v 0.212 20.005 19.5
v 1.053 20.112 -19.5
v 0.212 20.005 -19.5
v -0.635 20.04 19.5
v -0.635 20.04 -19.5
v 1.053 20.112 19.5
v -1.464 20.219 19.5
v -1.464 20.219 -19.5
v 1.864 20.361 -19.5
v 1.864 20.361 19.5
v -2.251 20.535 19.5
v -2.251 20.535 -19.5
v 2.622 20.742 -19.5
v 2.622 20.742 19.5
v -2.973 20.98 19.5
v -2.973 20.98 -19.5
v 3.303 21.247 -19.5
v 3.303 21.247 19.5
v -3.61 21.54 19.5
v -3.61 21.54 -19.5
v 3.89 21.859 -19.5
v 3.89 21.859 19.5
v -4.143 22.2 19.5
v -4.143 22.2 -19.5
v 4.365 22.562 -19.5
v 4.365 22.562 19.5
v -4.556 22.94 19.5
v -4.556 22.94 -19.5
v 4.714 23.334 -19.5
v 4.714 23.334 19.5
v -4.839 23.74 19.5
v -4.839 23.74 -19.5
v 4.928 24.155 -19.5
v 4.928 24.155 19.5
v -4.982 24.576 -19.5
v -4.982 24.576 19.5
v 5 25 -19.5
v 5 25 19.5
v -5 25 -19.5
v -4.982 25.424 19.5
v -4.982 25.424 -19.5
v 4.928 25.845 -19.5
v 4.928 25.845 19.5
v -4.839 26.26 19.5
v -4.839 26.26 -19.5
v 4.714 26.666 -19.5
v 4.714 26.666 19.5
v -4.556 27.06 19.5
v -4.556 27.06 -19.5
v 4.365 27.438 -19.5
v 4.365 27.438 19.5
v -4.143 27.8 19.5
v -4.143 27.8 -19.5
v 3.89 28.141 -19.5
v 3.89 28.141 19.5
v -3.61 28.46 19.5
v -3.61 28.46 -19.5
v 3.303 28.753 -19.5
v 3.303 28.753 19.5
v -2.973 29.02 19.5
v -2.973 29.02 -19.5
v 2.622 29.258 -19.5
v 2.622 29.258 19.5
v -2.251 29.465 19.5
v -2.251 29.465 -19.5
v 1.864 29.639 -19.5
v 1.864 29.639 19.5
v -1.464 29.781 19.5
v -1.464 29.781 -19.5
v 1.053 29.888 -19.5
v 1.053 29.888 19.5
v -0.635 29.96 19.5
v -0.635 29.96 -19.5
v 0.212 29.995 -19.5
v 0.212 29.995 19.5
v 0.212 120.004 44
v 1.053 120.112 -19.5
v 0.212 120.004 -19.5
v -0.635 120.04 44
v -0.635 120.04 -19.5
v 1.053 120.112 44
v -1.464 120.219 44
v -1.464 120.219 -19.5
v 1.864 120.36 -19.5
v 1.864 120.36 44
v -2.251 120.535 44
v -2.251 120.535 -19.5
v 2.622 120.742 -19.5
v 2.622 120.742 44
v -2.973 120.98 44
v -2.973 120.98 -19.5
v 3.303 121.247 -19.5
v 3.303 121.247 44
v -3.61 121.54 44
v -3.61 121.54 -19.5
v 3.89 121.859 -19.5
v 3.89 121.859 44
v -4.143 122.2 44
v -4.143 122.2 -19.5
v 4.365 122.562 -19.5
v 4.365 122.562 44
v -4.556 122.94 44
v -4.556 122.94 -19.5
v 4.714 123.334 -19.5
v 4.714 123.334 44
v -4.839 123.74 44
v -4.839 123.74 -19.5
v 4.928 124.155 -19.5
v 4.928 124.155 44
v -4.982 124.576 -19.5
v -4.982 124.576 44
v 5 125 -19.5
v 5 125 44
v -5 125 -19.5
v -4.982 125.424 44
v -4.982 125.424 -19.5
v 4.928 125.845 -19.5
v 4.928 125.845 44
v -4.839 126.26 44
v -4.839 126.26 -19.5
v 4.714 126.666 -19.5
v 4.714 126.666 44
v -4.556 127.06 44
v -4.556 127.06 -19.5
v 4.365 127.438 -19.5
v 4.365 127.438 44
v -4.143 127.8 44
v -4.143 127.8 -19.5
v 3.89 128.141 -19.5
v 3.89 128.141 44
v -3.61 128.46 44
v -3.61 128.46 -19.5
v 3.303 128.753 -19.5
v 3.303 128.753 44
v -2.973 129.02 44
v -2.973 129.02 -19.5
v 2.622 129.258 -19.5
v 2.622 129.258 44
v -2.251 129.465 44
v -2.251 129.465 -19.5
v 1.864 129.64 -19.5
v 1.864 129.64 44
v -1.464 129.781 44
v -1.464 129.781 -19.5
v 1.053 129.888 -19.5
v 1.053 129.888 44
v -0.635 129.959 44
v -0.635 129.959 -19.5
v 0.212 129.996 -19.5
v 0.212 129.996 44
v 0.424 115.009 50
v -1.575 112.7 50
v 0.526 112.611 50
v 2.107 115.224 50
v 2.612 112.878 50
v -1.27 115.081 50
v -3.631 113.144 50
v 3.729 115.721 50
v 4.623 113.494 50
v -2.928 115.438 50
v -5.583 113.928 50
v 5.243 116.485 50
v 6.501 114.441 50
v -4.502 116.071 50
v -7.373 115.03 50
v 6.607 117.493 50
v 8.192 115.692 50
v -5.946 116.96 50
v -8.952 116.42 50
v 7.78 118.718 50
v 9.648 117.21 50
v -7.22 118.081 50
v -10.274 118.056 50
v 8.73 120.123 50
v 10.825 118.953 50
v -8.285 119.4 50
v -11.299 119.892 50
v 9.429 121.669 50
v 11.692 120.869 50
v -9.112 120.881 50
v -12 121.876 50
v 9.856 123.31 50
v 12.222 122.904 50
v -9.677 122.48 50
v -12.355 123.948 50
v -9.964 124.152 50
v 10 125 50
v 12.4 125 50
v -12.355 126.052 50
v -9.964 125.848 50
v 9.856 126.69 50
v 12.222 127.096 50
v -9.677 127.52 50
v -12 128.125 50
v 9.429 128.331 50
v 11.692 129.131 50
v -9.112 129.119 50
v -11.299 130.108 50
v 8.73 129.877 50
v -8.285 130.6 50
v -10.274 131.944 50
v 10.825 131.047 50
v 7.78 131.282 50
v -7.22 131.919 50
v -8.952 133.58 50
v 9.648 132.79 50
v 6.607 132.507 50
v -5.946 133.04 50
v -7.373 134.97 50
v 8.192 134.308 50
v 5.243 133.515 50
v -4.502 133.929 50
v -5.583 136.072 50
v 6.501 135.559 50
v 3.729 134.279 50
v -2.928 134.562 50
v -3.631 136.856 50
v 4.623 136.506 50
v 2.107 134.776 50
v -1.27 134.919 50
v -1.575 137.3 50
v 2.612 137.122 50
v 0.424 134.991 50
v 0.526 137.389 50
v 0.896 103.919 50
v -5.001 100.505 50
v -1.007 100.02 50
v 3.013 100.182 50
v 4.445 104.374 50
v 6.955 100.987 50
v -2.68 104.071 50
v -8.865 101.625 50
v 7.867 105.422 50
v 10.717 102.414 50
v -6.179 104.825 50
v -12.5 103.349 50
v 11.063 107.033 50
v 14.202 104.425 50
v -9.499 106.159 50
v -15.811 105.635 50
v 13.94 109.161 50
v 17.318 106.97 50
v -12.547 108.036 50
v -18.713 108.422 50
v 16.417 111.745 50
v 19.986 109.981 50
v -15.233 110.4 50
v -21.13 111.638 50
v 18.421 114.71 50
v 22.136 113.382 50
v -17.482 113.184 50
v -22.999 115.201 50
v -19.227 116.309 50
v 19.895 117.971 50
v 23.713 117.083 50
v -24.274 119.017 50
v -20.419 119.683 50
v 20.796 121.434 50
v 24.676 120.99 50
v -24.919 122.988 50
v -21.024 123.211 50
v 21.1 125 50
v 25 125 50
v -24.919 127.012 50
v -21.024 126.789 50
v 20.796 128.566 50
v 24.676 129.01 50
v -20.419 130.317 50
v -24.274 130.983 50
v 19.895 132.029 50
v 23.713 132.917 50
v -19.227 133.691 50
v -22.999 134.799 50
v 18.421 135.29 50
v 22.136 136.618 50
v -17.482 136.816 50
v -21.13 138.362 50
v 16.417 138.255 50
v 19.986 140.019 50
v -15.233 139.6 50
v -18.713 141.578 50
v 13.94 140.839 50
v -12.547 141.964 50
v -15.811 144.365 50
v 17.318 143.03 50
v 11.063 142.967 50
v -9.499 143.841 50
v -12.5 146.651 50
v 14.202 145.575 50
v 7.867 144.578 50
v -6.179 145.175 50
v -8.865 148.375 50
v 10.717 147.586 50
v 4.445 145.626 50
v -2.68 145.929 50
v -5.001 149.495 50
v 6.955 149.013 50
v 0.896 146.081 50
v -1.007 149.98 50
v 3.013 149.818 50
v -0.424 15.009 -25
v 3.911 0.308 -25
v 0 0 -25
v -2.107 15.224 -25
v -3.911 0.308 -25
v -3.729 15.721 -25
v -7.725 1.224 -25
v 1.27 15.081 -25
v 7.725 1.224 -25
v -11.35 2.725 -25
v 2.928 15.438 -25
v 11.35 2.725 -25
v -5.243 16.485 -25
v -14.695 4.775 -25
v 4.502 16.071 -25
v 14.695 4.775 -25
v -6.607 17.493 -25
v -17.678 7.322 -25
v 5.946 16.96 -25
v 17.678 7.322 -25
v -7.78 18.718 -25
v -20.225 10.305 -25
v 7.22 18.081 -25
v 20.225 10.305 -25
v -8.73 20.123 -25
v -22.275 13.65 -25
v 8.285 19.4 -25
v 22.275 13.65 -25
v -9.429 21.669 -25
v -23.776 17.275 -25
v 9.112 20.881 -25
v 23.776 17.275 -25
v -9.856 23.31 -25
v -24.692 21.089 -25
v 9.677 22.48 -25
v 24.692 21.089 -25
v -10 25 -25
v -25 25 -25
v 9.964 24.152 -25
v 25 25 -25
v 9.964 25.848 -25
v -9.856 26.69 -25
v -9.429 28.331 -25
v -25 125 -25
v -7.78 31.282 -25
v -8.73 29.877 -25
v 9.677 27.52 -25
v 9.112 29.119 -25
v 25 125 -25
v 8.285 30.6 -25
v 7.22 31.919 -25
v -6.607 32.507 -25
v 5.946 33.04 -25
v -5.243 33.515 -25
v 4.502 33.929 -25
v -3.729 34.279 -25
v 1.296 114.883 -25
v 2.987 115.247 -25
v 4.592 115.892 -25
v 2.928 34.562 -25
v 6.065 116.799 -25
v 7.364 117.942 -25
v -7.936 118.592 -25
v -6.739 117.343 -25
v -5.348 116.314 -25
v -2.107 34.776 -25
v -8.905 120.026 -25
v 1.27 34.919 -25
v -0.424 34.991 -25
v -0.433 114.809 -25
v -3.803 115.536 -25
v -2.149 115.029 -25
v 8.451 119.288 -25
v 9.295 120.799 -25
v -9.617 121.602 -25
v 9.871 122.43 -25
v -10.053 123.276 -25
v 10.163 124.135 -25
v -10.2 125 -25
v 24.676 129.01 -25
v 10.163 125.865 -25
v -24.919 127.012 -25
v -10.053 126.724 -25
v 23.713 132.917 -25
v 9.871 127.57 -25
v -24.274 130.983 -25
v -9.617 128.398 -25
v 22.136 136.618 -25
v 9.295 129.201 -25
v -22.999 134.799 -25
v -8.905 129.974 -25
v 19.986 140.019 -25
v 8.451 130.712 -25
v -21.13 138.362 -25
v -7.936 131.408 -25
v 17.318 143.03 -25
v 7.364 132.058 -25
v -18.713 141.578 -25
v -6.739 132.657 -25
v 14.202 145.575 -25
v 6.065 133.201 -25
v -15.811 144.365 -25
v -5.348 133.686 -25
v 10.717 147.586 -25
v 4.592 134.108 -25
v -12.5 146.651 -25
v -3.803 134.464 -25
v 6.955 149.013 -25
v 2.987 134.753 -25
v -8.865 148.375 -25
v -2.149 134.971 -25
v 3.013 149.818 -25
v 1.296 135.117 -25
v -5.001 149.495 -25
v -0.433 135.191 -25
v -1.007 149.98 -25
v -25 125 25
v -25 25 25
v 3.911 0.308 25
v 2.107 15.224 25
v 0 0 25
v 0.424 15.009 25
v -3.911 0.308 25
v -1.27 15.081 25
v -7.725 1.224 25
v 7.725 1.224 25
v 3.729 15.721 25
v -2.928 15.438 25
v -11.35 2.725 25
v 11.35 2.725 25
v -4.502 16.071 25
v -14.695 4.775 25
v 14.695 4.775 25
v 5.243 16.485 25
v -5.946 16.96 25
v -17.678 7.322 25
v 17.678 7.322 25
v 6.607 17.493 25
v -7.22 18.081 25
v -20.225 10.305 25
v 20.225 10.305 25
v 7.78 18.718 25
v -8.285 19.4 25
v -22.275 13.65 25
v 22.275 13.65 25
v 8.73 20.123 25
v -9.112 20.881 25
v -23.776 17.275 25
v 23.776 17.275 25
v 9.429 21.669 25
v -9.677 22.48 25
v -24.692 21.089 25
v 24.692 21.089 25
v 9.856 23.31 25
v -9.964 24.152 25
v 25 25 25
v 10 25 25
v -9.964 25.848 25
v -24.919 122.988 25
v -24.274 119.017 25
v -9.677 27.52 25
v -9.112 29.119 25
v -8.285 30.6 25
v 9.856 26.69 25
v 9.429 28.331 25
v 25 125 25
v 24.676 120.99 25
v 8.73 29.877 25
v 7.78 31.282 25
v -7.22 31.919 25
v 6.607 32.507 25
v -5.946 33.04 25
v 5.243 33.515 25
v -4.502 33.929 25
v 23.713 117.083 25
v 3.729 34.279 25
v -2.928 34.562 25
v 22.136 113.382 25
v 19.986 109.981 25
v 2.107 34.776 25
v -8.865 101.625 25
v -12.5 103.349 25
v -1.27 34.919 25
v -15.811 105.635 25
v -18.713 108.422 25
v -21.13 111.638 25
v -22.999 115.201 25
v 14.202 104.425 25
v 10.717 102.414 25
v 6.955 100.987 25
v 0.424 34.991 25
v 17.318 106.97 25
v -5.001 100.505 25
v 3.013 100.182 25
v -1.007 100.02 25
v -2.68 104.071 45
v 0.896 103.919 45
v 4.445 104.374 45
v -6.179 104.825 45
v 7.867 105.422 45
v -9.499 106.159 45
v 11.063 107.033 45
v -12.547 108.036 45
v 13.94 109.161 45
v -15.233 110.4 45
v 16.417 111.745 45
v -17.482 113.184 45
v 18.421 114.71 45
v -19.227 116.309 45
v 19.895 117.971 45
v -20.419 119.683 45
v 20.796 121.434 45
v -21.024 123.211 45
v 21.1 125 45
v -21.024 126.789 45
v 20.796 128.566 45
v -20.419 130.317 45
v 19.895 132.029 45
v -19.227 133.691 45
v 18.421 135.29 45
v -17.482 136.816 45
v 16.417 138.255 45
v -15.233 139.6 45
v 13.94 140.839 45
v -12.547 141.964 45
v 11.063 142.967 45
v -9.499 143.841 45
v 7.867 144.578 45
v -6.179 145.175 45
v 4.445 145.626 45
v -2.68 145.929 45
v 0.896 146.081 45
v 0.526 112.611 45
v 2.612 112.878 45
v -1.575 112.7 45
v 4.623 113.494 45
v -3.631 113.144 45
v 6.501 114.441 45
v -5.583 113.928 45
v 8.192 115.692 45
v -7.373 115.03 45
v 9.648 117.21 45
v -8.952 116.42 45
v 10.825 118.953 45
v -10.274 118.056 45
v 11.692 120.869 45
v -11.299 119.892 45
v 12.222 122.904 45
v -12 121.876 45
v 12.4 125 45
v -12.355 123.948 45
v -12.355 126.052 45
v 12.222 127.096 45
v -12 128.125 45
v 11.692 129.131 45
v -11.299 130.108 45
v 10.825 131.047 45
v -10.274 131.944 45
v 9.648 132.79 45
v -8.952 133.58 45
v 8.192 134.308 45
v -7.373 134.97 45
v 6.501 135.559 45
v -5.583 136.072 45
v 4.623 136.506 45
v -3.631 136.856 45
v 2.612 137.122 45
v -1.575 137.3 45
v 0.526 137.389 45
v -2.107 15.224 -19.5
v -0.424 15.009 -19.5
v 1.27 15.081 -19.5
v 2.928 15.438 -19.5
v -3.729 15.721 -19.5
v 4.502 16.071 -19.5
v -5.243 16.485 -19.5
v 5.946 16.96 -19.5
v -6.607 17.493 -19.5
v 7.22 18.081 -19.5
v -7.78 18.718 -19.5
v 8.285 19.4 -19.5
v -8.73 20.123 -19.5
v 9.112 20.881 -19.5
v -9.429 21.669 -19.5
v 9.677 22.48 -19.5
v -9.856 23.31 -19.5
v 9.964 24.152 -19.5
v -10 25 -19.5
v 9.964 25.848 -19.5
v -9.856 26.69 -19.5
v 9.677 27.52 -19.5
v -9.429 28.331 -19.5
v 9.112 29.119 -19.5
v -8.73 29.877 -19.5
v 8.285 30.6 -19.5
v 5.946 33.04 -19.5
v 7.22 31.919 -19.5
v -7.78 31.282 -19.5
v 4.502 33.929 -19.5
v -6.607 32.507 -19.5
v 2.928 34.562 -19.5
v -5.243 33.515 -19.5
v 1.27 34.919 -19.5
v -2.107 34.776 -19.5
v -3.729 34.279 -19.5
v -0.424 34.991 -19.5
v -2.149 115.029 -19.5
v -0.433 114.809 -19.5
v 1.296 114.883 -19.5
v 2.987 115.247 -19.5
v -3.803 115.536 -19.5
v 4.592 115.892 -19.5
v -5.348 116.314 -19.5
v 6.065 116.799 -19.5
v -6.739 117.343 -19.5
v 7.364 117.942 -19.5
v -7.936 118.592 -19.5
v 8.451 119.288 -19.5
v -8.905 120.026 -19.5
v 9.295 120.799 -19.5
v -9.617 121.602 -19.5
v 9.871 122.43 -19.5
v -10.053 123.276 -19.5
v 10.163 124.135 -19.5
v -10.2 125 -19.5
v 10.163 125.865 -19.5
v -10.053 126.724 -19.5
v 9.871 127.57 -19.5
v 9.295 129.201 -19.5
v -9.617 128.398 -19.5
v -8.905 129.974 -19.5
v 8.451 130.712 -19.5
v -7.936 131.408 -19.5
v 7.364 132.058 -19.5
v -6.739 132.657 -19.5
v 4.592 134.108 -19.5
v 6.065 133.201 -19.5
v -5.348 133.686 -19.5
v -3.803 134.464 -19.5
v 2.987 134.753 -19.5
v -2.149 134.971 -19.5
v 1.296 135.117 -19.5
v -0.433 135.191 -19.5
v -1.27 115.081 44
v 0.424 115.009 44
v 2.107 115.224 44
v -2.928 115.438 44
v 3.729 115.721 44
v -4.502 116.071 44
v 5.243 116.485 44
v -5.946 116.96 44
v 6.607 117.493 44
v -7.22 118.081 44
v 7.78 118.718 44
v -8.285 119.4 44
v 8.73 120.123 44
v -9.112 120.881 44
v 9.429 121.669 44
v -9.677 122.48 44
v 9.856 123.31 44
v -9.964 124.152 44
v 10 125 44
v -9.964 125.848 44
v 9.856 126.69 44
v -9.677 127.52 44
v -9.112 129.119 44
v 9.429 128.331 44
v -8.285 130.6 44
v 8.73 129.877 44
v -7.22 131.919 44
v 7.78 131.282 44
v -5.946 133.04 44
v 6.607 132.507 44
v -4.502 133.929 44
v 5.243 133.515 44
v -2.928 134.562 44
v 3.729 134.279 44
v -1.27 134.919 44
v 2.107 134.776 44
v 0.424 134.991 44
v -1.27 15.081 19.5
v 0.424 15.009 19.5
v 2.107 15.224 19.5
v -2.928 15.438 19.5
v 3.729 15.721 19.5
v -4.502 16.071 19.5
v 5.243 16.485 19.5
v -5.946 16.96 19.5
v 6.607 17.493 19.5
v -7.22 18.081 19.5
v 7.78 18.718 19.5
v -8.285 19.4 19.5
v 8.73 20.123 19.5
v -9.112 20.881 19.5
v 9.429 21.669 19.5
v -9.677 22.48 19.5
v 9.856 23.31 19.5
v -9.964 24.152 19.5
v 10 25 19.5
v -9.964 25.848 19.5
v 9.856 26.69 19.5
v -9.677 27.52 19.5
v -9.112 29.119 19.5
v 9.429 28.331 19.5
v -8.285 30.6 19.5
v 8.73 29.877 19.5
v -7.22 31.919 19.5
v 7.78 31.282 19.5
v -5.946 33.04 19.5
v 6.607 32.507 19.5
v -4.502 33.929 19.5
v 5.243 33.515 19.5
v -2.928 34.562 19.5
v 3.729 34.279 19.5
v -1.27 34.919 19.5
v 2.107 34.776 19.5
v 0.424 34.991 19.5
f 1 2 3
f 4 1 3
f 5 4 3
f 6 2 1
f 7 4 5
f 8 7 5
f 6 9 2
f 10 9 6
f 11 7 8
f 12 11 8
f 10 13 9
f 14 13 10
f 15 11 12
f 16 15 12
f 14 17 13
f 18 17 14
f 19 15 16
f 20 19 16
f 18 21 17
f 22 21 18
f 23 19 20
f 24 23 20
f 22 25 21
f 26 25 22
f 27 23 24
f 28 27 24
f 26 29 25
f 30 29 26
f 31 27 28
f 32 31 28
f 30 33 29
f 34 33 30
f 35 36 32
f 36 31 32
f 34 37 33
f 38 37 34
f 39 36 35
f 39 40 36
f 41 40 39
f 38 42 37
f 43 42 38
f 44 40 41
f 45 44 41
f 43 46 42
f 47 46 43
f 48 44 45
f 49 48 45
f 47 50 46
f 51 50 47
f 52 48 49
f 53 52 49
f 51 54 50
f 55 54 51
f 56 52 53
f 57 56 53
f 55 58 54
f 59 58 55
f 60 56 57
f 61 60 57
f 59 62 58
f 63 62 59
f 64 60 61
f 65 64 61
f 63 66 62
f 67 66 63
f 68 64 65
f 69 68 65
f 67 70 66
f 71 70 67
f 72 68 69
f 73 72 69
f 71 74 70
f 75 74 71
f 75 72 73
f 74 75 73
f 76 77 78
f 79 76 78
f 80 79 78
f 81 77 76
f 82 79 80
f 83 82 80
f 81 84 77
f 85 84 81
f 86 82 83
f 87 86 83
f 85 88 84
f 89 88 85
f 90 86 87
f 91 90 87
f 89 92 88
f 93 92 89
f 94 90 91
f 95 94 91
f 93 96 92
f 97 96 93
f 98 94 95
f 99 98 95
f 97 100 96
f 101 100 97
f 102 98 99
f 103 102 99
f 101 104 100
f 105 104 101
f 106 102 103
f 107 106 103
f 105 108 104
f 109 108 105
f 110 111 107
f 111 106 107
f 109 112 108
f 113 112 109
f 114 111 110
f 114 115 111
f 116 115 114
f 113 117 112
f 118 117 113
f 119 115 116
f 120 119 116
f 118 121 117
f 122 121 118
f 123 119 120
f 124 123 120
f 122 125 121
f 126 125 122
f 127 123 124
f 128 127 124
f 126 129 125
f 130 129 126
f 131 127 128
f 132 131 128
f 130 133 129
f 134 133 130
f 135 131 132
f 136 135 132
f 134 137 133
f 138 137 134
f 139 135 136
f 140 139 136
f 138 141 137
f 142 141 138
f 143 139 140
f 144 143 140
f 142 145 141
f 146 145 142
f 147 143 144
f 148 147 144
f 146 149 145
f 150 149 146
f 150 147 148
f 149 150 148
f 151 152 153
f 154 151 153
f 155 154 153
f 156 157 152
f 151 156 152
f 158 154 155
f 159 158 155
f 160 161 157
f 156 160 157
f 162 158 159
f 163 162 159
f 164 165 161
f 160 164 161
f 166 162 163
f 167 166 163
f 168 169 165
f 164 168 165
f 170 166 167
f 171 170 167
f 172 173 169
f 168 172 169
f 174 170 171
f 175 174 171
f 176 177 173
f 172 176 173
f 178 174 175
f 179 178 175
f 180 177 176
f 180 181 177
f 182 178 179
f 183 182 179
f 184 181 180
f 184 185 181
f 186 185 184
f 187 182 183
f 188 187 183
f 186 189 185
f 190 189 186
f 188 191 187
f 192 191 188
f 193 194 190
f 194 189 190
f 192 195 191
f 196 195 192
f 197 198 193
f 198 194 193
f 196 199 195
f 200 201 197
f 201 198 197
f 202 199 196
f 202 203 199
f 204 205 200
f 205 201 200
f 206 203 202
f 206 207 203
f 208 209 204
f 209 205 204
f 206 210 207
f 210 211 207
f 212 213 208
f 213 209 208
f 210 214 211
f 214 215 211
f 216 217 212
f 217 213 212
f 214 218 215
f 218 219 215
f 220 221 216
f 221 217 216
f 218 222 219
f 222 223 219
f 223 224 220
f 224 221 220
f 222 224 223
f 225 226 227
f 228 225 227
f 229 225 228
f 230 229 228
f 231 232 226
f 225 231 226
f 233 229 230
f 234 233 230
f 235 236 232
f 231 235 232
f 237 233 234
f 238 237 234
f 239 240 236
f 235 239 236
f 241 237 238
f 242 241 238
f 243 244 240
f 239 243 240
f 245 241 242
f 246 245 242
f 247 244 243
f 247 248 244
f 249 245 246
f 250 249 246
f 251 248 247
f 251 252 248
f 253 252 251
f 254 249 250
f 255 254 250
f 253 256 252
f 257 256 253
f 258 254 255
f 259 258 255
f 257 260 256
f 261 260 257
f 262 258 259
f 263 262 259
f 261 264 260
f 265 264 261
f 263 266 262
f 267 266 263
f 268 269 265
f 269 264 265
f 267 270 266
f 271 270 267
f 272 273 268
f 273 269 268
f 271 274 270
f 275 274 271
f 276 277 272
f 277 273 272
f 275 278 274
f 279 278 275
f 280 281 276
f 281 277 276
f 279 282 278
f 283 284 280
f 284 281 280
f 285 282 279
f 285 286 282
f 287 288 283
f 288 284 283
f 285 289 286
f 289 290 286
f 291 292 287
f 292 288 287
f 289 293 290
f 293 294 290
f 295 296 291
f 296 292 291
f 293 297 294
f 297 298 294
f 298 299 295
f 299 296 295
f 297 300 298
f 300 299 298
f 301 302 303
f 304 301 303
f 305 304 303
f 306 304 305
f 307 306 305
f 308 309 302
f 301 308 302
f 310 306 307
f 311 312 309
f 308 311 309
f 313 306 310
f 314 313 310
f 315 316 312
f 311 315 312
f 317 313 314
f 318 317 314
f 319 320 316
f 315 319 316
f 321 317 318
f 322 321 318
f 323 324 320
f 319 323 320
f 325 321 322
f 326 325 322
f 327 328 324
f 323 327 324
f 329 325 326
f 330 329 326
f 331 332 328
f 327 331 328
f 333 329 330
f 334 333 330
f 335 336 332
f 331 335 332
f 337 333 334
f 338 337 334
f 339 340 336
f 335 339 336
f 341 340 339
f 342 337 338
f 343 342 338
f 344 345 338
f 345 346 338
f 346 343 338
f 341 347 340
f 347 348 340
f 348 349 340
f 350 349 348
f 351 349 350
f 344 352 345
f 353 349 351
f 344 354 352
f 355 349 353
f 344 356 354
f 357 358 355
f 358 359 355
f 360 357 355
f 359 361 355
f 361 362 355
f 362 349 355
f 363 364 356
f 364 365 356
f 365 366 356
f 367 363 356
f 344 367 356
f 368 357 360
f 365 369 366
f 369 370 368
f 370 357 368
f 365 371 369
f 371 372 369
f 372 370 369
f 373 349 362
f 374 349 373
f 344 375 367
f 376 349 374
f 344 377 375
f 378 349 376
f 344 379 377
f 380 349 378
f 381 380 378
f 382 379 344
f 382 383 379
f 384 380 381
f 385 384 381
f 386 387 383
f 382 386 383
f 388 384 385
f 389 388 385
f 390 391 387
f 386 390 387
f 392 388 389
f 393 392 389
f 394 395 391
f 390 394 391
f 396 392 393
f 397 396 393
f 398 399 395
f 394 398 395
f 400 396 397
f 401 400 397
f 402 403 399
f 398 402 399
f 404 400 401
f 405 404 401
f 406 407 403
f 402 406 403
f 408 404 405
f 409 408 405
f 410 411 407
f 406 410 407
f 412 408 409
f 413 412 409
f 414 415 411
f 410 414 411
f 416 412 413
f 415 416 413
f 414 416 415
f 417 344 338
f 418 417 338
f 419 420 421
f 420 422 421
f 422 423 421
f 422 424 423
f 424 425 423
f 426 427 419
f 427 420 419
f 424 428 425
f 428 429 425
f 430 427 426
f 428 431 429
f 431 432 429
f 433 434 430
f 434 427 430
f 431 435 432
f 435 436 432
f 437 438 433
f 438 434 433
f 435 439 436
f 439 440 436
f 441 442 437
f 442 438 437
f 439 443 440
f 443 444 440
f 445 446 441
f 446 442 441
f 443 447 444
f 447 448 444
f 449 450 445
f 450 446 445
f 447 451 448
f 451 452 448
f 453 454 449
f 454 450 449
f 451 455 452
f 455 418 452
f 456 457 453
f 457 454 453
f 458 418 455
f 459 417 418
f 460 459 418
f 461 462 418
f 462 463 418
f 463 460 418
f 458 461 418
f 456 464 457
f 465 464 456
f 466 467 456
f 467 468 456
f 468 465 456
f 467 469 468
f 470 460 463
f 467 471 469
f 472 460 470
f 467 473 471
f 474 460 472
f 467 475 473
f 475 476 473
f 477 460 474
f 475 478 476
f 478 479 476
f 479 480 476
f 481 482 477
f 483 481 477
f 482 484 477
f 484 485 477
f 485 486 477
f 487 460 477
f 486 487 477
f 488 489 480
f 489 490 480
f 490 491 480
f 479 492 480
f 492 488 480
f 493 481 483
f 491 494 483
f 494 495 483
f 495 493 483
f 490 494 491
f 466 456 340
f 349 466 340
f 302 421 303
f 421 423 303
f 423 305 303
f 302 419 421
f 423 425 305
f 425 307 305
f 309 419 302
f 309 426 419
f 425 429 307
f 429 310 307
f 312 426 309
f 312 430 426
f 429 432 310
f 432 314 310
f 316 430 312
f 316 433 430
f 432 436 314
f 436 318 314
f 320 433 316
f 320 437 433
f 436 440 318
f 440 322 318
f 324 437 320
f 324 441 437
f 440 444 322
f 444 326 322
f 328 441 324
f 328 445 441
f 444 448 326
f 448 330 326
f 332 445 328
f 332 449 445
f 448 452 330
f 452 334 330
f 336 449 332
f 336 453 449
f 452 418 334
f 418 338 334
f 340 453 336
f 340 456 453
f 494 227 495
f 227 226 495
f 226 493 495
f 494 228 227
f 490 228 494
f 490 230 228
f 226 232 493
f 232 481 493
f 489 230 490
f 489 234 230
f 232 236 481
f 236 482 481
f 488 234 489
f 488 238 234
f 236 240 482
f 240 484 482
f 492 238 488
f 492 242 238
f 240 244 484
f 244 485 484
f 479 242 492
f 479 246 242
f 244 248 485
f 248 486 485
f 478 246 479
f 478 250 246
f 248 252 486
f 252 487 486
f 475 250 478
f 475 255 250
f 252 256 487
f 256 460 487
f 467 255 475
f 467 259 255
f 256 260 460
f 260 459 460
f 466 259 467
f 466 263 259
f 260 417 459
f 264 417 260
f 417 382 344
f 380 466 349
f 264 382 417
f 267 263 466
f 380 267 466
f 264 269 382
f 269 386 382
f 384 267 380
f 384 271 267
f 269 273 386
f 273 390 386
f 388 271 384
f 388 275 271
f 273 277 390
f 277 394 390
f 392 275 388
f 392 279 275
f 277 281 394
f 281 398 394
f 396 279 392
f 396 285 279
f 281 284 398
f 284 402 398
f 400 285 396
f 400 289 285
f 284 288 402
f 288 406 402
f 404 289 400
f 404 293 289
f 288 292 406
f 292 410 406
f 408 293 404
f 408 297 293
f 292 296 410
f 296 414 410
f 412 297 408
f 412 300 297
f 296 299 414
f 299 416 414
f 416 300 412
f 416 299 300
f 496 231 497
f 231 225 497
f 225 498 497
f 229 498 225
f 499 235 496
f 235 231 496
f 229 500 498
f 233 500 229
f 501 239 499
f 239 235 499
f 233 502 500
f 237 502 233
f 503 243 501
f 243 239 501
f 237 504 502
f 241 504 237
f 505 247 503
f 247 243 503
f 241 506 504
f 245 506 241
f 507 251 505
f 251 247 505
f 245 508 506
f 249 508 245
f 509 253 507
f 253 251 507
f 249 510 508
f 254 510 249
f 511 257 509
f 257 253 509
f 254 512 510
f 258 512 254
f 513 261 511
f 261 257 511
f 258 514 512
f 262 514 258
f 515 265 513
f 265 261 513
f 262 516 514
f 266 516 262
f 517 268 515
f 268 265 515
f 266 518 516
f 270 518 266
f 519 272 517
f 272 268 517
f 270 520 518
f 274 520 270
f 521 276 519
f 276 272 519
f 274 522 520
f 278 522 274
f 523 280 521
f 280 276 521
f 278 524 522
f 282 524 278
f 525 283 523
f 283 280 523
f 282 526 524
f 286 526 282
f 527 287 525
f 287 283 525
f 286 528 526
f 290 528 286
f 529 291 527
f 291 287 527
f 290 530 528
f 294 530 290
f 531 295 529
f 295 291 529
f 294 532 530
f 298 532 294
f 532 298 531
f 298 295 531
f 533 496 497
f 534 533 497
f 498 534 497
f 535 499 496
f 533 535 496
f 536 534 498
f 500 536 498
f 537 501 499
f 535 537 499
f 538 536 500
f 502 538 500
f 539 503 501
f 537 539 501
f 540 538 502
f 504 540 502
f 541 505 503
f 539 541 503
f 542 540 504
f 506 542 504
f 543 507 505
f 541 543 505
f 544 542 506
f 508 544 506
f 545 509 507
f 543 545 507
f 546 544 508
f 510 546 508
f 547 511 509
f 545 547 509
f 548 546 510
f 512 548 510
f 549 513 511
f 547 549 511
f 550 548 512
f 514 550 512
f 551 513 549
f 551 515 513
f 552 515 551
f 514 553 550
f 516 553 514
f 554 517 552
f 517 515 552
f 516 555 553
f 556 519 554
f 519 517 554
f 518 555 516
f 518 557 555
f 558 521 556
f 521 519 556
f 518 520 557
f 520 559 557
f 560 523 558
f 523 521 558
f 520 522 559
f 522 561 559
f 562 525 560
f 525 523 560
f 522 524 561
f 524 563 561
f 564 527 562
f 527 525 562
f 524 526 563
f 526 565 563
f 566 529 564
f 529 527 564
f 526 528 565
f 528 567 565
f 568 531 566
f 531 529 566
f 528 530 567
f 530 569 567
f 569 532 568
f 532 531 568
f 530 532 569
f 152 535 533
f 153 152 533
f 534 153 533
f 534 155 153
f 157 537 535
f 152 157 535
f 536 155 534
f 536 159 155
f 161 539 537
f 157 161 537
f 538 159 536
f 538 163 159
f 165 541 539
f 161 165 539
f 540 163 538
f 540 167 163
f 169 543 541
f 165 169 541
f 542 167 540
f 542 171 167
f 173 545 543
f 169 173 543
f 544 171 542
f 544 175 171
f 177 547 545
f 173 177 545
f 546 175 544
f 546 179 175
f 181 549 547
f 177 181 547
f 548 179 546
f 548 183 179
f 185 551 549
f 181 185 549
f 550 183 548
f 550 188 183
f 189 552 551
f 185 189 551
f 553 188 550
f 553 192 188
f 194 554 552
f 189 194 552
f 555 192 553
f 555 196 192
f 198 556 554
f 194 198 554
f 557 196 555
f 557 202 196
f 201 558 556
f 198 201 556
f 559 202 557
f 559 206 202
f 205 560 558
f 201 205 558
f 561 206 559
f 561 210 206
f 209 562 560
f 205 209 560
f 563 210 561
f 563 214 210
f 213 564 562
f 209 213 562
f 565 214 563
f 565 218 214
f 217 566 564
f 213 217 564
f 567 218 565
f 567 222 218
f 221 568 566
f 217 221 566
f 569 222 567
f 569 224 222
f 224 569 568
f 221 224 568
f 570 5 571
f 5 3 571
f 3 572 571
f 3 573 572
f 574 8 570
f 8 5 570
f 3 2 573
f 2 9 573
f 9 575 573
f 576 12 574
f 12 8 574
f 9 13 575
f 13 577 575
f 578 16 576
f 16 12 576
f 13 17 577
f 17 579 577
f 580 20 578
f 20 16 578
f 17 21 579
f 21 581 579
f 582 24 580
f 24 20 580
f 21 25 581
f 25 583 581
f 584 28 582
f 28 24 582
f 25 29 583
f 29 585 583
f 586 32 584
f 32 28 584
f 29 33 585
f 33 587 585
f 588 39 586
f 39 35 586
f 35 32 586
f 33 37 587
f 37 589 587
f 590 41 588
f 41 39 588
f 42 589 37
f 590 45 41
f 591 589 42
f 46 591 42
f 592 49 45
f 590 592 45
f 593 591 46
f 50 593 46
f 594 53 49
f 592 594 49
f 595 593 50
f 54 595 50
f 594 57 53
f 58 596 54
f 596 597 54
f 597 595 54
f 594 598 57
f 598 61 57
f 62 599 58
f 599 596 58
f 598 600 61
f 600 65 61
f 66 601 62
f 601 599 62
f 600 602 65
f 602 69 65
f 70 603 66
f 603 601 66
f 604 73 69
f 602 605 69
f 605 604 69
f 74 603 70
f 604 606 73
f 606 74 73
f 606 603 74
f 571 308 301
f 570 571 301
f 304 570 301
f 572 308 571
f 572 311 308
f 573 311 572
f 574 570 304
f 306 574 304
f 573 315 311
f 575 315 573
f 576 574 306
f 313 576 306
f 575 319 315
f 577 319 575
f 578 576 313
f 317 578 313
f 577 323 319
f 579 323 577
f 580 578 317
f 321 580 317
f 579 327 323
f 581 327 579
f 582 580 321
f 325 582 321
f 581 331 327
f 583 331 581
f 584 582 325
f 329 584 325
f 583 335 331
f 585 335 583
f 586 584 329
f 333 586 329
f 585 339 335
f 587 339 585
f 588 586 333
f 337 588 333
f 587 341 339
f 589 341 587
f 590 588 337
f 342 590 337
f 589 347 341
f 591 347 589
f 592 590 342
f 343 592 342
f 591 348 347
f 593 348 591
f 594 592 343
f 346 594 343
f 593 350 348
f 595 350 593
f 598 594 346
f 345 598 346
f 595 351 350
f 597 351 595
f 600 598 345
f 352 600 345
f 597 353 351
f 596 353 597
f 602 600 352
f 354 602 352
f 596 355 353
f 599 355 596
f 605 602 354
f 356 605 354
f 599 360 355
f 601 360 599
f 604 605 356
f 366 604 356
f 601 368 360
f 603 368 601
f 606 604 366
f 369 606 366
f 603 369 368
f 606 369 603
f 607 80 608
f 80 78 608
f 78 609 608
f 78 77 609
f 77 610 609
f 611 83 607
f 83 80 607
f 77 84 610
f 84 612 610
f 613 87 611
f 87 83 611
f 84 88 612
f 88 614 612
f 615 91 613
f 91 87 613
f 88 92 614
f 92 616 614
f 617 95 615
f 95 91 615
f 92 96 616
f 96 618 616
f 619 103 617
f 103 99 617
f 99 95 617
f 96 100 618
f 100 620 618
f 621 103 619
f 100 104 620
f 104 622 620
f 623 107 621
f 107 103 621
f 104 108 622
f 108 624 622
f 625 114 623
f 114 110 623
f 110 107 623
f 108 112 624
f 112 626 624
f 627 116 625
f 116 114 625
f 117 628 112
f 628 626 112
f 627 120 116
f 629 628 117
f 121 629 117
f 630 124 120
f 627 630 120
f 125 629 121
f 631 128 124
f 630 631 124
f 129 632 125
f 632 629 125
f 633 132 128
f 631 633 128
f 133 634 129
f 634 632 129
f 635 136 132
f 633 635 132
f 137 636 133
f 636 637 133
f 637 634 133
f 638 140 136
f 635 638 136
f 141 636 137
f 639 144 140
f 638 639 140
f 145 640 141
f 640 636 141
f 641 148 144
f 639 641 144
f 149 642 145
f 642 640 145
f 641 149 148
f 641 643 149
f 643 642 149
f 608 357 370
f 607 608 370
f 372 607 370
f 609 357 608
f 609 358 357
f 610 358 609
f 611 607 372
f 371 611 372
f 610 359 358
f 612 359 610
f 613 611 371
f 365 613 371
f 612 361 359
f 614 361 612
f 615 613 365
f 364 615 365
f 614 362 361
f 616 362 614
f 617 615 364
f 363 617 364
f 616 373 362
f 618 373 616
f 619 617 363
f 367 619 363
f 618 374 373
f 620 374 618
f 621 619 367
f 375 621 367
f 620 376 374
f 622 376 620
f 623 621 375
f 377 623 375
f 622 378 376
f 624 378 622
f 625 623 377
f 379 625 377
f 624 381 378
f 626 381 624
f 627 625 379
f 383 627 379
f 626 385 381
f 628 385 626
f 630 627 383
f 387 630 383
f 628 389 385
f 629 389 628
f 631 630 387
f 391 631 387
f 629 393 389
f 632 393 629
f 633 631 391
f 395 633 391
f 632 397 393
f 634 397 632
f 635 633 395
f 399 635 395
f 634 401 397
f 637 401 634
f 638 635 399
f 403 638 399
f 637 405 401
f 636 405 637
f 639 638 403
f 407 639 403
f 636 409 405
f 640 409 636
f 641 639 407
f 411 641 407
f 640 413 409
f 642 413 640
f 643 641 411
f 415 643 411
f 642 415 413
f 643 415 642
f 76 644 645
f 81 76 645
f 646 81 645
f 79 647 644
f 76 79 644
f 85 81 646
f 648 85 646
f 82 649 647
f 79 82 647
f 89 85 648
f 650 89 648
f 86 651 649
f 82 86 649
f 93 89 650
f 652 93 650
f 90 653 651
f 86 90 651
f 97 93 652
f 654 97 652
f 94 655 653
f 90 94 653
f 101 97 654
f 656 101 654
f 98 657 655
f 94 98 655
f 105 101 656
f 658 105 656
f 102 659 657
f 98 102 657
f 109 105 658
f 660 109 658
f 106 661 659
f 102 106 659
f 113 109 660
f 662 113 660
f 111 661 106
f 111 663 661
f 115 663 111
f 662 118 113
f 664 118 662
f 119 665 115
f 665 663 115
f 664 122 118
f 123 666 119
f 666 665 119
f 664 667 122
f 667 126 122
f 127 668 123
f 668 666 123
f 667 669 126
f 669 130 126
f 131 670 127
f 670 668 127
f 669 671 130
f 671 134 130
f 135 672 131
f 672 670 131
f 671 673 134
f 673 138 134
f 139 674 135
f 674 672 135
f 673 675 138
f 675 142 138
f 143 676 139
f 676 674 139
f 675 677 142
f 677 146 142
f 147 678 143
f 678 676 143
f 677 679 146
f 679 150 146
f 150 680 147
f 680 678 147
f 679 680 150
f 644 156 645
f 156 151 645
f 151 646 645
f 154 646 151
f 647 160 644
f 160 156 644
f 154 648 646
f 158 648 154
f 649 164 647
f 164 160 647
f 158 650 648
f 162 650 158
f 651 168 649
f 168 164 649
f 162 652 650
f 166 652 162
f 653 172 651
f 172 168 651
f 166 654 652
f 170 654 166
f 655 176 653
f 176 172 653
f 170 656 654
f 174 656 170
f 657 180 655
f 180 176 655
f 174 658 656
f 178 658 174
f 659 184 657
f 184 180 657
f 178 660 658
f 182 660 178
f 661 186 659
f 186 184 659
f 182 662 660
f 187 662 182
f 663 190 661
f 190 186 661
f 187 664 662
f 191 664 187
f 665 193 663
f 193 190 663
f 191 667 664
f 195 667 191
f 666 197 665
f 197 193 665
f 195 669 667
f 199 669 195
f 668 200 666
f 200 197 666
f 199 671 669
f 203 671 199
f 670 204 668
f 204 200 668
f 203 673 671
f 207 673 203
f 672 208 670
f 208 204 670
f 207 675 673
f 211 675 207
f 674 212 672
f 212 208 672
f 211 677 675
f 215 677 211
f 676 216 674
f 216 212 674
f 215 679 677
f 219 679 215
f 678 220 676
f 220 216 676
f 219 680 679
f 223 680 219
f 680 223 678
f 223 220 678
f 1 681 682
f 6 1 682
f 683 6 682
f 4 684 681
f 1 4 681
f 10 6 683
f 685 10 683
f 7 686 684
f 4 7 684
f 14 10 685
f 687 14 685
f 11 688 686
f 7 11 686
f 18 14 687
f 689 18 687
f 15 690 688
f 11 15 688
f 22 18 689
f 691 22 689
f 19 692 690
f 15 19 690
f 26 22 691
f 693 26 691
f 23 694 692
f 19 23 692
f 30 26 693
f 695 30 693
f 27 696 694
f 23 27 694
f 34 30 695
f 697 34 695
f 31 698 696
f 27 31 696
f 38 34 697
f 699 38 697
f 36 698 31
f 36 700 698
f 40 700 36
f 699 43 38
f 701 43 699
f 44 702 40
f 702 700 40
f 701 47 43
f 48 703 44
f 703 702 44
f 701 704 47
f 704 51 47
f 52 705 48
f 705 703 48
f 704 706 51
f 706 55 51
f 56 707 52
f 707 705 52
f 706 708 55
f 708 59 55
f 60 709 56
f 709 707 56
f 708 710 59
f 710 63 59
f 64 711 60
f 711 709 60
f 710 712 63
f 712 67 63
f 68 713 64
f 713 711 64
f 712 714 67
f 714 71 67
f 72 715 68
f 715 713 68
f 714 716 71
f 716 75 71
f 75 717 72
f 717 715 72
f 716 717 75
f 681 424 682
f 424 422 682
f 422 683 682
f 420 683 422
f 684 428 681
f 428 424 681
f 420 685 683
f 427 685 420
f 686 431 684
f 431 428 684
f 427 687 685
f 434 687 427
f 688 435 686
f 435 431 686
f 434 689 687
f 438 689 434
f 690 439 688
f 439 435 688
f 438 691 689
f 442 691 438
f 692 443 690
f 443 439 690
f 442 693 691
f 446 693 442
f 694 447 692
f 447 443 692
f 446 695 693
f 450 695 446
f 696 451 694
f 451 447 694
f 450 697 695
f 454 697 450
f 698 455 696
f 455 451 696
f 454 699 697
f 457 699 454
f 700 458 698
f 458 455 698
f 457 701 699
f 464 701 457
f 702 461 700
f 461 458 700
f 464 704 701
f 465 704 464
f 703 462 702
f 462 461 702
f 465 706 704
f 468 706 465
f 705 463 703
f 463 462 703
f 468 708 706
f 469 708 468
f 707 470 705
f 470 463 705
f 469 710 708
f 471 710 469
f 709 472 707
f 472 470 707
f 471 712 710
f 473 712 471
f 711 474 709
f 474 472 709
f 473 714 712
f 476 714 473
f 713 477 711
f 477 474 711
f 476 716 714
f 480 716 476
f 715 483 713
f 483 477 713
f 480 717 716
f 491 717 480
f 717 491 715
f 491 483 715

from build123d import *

# Parameters (mm, degrees)
SKIZZE4_W                       = 50
SKIZZE4_H                       = 50
AUFSATZ_LINEAR_AUSTRAGEN1_DEPTH = 150
SKIZZE5_W                       = 50
SKIZZE5_H                       = 50
AUFSATZ_LINEAR_AUSTRAGEN2_DEPTH = 25
SKIZZE6_R                       = 5
SCHNITT_LINEAR_AUSTRAGEN1_DEPTH = 75
SKIZZE8_R                       = 5
SCHNITT_LINEAR_AUSTRAGEN2_DEPTH = 50
SCHNITT_LINEAR_AUSTRAGEN3_DEPTH = 75
SCHNITT_LINEAR_AUSTRAGEN4_DEPTH = 25
SKIZZE11_R                      = 21.1
SKIZZE11_R_2                    = 12.4
SCHNITT_LINEAR_AUSTRAGEN5_DEPTH = 5
SKIZZE12_R                      = 10.2
SKIZZE12_R_2                    = 10
SCHNITT_LINEAR_AUSTRAGEN6_DEPTH = 5.5
SKIZZE13_R                      = 10
SCHNITT_LINEAR_AUSTRAGEN7_DEPTH = 6
SCHNITT_LINEAR_START            = -5.5
SKIZZE14_R                      = 10
SCHNITT_LINEAR_AUSTRAGEN8_DEPTH = 5.5


with BuildPart() as part:
    # Skizze4 → Aufsatz-Linear austragen1 (new body)
    with BuildSketch(Plane(origin=(0, 0, 0), x_dir=(1, 0, 0), z_dir=(0, 1, 0))):
        Rectangle(SKIZZE4_W, SKIZZE4_H)
    extrude(amount=AUFSATZ_LINEAR_AUSTRAGEN1_DEPTH)

    # Skizze5 → Aufsatz-Linear austragen2 (add)
    with BuildSketch(Plane.XY.offset(25)):
        with Locations((0, 125)):
            Rectangle(SKIZZE5_W, SKIZZE5_H)
    extrude(amount=AUFSATZ_LINEAR_AUSTRAGEN2_DEPTH)

    # Skizze6 → Schnitt-Linear austragen1 (cut)
    with BuildSketch(Plane.XY.offset(50)):
        with Locations((0, 125)):
            Circle(SKIZZE6_R)
    extrude(amount=-SCHNITT_LINEAR_AUSTRAGEN1_DEPTH, mode=Mode.SUBTRACT)

    # Skizze8 → Schnitt-Linear austragen2 (cut)
    with BuildSketch(Plane.XY.offset(25)):
        with BuildLine():
            ThreePointArc((0, 0), (-17.67766953, 7.32233047), (-25, 25))
            Line((-25, 25), (-25, 0))
            Line((-25, 0), (0, 0))
        make_face()
        with BuildLine():
            ThreePointArc((25, 25), (17.67766953, 7.32233047), (0, 0))
            Line((0, 0), (25, 0))
            Line((25, 0), (25, 25))
        make_face()
        with Locations((0, 25)):
            Circle(SKIZZE8_R)
    extrude(amount=-SCHNITT_LINEAR_AUSTRAGEN2_DEPTH, mode=Mode.SUBTRACT)

    # Skizze9 → Schnitt-Linear austragen3 (cut)
    with BuildSketch(Plane.XY.offset(50)):
        with BuildLine():
            Line((0, 150), (-25, 150))
            Line((-25, 150), (-25, 125))
            ThreePointArc((-25, 125), (-17.67766953, 142.67766953), (0, 150))
        make_face()
        with BuildLine():
            Line((25, 150), (0, 150))
            ThreePointArc((0, 150), (17.67766953, 142.67766953), (25, 125))
            Line((25, 125), (25, 150))
        make_face()
    extrude(amount=-SCHNITT_LINEAR_AUSTRAGEN3_DEPTH, mode=Mode.SUBTRACT)

    # Skizze10 → Schnitt-Linear austragen4 (cut)
    with BuildSketch(Plane.XY.offset(50)):
        with BuildLine():
            ThreePointArc((0, 100), (-17.67766953, 107.32233047), (-25, 125))
            Line((-25, 125), (-25, 100))
            Line((-25, 100), (0, 100))
        make_face()
        with BuildLine():
            Line((25, 100), (25, 125))
            ThreePointArc((25, 125), (17.67766953, 107.32233047), (0, 100))
            Line((0, 100), (25, 100))
        make_face()
    extrude(amount=-SCHNITT_LINEAR_AUSTRAGEN4_DEPTH, mode=Mode.SUBTRACT)

    # Skizze11 → Schnitt-Linear austragen5 (cut)
    with BuildSketch(Plane.XY.offset(50)):
        with Locations((0, 125)):
            Circle(SKIZZE11_R)
        with Locations((0, 125)):
            Circle(SKIZZE11_R_2, mode=Mode.SUBTRACT)
    extrude(amount=-SCHNITT_LINEAR_AUSTRAGEN5_DEPTH, mode=Mode.SUBTRACT)

    # Skizze12 → Schnitt-Linear austragen6 (cut)
    with BuildSketch(Plane(origin=(0, 0, -25), x_dir=(-1, 0, 0), z_dir=(0, 0, -1))):
        with Locations((0, 125)):
            Circle(SKIZZE12_R)
        with Locations((0, 25)):
            Circle(SKIZZE12_R_2)
    extrude(amount=-SCHNITT_LINEAR_AUSTRAGEN6_DEPTH, mode=Mode.SUBTRACT)

    # Skizze13 → Schnitt-Linear austragen7 (cut)
    with BuildSketch(Plane.XY.offset(50)):
        with Locations((0, 125)):
            Circle(SKIZZE13_R)
    extrude(amount=-SCHNITT_LINEAR_AUSTRAGEN7_DEPTH, mode=Mode.SUBTRACT)

    # Skizze14 → Schnitt-Linear austragen8 (cut)
    with BuildSketch(Plane.XY.offset(25).offset(SCHNITT_LINEAR_START)):
        with Locations(Location((0, 25, 0), (0, 0, 180))):
            Circle(SKIZZE14_R)
    extrude(amount=SCHNITT_LINEAR_AUSTRAGEN8_DEPTH, mode=Mode.SUBTRACT)


solid = part.part
